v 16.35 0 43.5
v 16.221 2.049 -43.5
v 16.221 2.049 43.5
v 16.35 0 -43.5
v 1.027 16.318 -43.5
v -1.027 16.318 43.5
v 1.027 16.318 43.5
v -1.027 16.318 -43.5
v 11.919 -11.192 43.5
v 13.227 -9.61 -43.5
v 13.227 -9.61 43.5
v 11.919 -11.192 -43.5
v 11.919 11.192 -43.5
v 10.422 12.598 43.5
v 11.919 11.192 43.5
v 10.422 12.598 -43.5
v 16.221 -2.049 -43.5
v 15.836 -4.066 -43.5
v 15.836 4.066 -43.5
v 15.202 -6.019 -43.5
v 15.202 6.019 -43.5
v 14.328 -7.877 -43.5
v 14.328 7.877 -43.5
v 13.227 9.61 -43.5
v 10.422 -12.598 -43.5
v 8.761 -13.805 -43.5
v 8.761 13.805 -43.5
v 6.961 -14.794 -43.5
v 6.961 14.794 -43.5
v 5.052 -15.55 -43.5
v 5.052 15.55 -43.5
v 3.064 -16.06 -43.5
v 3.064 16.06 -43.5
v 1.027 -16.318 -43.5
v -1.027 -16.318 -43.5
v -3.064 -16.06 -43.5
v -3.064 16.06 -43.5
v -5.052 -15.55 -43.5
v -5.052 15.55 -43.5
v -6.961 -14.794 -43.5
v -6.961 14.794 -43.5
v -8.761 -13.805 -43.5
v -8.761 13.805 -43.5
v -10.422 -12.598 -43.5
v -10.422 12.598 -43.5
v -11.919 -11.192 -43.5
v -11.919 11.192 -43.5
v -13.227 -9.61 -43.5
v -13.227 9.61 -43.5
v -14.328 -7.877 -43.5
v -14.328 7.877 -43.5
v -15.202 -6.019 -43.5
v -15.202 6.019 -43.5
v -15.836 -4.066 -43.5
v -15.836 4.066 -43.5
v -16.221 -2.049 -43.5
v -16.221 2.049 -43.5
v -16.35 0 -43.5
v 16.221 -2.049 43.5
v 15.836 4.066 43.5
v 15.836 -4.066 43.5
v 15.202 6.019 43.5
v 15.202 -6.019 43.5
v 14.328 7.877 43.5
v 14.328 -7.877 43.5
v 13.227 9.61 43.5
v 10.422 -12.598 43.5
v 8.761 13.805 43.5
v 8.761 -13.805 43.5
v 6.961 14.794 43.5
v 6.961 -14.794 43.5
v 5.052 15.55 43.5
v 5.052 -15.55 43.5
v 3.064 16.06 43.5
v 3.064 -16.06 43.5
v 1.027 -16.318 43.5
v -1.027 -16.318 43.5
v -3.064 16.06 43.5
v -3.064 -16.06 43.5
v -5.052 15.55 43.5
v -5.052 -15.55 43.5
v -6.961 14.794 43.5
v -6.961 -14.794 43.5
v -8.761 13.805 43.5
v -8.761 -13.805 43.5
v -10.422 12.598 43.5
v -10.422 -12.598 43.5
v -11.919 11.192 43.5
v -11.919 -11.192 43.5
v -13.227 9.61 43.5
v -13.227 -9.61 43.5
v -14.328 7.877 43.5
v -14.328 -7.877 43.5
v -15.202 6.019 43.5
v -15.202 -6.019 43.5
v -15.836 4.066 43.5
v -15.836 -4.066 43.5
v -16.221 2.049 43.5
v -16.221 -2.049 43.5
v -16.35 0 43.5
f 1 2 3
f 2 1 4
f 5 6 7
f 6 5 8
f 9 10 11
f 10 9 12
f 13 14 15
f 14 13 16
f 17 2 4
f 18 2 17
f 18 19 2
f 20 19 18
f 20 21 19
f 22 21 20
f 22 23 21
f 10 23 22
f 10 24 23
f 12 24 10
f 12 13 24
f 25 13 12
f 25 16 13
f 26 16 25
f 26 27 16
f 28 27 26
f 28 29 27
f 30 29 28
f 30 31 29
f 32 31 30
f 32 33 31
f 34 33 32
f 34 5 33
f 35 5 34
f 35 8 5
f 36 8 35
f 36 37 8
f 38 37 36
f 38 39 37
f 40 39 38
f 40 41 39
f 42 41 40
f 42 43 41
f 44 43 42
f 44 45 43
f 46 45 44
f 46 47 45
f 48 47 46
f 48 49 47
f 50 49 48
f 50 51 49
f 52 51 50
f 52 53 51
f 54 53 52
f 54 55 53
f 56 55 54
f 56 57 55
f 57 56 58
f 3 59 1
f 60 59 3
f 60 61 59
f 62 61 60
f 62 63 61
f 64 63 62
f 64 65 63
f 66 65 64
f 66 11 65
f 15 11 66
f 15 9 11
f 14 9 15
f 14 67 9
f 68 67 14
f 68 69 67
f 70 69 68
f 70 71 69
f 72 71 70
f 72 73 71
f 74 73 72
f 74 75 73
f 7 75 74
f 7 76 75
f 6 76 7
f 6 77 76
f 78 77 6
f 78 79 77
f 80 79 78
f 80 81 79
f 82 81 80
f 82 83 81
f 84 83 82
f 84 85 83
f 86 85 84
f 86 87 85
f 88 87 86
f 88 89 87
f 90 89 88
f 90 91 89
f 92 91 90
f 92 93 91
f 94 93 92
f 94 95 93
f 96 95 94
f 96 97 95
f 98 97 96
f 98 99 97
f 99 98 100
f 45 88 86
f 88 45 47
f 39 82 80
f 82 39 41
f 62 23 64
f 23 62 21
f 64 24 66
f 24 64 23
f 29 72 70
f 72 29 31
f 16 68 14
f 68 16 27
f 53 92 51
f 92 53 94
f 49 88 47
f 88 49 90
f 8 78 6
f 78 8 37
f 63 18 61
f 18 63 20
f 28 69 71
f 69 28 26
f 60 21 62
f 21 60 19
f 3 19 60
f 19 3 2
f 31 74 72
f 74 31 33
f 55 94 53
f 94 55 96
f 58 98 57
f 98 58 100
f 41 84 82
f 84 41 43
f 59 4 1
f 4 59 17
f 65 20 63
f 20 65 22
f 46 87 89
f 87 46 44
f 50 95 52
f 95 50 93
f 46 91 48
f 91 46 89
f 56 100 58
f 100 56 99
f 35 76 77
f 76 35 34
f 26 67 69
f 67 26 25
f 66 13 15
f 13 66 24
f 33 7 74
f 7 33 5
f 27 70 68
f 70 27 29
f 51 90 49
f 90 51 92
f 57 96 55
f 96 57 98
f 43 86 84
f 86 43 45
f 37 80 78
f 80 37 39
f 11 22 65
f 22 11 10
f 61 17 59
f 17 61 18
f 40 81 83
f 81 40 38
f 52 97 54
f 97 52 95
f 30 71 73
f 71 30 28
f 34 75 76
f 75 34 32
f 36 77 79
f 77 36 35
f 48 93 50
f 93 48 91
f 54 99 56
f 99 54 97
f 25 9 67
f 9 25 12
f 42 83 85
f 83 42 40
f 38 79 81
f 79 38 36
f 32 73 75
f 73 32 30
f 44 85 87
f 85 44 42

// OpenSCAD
$fn = 50;


difference() {
	union() {
		translate(v = [0, 0, -43.5000000000]) {
			cylinder(h = 87, r = 16.3500000000);
		}
	}
	union() {
		translate(v = [0, 0, -100.0000000000]) {
			cylinder(h = 200, r = 0);
		}
	}
}
